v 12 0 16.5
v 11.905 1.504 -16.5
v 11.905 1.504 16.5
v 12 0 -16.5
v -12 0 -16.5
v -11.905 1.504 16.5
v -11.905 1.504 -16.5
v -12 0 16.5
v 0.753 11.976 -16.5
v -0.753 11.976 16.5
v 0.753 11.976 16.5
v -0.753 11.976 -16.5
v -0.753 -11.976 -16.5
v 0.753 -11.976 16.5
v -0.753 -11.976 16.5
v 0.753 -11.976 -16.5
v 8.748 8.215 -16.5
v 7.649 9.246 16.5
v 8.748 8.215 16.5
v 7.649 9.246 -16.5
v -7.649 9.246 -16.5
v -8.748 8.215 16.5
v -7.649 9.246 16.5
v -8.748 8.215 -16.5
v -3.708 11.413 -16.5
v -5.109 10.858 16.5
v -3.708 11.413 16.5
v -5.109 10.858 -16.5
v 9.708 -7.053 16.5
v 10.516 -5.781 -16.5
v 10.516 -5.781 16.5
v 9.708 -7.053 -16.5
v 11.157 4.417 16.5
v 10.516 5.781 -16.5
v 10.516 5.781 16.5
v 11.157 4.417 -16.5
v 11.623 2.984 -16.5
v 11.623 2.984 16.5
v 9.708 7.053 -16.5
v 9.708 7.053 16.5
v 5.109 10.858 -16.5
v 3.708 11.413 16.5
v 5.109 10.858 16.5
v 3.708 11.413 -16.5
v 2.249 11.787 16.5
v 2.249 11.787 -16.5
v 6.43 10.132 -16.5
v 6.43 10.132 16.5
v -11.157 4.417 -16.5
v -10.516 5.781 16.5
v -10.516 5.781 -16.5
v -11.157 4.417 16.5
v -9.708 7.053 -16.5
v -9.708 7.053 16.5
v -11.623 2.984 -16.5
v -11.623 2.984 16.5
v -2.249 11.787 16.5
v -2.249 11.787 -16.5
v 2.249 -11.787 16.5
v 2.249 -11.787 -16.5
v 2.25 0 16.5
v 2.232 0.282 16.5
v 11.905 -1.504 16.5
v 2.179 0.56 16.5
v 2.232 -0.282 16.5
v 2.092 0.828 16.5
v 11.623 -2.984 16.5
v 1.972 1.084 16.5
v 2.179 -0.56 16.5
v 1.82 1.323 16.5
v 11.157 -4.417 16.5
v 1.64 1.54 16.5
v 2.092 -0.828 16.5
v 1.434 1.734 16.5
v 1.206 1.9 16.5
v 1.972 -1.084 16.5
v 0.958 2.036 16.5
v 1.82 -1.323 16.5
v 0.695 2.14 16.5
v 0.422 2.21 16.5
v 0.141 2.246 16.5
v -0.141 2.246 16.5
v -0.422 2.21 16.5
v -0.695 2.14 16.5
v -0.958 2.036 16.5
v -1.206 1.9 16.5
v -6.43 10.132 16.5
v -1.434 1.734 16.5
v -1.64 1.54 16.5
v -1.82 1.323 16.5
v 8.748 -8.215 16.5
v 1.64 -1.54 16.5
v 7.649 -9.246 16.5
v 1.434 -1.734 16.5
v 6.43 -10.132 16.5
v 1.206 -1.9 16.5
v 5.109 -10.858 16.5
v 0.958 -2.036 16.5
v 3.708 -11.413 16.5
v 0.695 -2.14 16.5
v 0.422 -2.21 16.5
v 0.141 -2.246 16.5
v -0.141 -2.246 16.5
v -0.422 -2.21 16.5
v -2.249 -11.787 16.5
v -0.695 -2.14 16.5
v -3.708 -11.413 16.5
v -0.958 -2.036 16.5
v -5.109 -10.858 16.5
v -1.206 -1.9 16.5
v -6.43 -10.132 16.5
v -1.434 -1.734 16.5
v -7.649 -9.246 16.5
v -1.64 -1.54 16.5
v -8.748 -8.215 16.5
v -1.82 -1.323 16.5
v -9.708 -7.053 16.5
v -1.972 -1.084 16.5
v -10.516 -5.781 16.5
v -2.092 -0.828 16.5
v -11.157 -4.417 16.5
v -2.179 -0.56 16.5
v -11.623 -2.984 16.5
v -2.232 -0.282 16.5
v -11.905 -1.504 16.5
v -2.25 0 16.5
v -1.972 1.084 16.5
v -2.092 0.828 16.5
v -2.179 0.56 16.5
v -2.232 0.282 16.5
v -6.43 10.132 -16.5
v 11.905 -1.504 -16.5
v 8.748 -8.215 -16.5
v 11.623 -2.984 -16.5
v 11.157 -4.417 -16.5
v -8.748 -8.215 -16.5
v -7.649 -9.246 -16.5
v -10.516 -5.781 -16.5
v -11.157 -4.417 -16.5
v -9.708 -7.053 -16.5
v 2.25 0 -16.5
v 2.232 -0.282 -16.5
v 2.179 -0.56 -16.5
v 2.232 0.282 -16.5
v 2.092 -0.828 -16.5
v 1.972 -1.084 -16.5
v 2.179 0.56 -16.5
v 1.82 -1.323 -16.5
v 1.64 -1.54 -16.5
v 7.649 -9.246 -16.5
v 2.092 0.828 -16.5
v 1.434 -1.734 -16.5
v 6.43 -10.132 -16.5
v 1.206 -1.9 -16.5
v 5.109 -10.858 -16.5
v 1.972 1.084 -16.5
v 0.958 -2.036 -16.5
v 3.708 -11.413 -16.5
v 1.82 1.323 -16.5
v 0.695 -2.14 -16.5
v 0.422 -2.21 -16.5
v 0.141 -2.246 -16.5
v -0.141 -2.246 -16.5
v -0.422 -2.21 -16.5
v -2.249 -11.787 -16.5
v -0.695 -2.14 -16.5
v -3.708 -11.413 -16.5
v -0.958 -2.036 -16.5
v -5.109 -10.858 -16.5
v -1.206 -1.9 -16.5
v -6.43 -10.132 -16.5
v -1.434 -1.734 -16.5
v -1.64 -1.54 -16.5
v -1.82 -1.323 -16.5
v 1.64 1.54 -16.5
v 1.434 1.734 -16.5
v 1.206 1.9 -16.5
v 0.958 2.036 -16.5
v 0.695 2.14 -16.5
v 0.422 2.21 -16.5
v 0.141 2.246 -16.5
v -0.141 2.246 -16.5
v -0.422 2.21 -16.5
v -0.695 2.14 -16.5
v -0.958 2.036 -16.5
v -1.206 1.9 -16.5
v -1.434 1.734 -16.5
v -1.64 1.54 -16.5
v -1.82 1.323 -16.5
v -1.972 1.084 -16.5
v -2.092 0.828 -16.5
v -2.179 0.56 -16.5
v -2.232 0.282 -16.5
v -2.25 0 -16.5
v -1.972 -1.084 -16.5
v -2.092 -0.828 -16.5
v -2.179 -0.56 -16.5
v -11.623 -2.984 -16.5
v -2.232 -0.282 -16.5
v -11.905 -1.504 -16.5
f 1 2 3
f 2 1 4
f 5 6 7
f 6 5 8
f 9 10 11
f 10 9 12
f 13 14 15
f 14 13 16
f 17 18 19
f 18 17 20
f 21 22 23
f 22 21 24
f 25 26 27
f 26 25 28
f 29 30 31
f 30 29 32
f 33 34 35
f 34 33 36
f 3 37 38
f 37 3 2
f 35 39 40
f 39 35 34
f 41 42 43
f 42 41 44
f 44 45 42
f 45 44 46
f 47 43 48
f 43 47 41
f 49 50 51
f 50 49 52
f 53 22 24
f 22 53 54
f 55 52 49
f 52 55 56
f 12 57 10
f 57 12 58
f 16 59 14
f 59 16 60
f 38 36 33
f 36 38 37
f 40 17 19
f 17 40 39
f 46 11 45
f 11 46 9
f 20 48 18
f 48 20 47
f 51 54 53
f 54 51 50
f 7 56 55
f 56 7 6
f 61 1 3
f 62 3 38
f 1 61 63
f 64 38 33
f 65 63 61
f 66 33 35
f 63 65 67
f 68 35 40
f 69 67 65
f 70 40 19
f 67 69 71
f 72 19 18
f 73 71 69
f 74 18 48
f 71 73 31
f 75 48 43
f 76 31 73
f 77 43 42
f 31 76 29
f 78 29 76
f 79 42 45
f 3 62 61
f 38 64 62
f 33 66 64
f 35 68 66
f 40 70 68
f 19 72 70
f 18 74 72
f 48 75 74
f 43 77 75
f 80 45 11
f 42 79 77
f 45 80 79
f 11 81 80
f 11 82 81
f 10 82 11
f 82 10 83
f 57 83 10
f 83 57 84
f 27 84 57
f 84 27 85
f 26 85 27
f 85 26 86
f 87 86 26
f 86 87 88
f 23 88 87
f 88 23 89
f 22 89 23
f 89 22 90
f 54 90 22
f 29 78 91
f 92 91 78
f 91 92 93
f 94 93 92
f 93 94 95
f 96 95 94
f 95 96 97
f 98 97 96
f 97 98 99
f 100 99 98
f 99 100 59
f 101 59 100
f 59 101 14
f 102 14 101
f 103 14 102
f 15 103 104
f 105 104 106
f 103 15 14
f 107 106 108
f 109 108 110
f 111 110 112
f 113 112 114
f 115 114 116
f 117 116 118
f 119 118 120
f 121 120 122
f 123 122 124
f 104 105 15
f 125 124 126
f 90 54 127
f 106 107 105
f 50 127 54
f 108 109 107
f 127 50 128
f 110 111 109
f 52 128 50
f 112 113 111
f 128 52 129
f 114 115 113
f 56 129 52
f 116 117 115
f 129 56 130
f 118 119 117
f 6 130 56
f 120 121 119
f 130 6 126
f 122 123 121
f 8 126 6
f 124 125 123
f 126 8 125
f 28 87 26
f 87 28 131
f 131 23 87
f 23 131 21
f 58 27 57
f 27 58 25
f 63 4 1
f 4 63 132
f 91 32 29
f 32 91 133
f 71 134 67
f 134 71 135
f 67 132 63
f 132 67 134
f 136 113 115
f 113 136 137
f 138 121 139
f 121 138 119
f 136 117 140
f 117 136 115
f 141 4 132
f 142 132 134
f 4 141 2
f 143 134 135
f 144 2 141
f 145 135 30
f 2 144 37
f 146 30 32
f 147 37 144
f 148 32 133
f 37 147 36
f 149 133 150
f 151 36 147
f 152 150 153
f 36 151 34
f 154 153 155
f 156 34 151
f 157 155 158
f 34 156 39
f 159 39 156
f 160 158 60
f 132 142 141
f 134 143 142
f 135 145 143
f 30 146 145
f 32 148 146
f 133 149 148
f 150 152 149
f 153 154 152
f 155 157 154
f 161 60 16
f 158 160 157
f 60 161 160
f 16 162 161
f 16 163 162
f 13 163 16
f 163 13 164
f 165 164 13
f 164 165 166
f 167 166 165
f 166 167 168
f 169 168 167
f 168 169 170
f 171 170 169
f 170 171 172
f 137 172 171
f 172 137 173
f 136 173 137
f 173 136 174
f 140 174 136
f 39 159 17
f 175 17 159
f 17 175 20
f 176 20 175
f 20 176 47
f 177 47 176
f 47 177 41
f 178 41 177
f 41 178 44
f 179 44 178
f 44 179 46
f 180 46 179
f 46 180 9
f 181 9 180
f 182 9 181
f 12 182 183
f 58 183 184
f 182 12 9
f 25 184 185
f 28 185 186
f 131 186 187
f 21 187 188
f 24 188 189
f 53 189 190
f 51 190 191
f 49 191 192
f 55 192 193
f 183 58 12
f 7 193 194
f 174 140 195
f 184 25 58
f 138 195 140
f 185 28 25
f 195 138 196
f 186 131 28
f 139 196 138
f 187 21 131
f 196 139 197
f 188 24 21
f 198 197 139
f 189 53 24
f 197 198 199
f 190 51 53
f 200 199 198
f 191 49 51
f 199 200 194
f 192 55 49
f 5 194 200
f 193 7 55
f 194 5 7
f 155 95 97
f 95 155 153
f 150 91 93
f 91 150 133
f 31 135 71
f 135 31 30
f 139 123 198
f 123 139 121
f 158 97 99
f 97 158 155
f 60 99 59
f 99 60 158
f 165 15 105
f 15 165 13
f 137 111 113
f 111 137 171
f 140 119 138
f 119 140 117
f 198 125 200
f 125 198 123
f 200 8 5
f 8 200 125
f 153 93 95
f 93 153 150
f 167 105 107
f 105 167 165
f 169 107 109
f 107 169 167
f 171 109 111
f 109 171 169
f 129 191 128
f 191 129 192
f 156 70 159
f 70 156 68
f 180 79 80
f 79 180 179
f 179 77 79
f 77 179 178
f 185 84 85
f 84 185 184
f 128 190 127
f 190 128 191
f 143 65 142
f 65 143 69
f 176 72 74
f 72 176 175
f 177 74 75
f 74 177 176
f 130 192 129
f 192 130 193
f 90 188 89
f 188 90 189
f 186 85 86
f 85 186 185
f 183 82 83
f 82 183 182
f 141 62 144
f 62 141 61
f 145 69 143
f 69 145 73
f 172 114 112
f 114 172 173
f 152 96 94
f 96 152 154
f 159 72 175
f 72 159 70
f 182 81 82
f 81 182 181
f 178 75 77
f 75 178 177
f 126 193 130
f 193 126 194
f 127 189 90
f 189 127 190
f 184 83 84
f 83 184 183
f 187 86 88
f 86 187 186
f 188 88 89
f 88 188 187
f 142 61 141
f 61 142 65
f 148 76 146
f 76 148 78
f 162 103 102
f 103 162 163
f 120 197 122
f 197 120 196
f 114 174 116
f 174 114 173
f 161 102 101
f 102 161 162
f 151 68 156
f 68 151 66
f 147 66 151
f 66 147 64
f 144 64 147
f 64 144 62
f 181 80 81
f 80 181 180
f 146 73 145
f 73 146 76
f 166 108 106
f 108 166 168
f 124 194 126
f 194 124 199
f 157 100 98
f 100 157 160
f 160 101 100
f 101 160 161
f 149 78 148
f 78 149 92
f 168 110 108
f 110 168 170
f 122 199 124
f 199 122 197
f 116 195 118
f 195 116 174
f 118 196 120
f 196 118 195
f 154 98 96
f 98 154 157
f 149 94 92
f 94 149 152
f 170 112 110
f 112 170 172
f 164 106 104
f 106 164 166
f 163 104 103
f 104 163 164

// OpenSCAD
$fn = 50;


difference() {
	union() {
		translate(v = [0, 0, -16.5000000000]) {
			cylinder(h = 33, r = 12.0000000000);
		}
	}
	union() {
		translate(v = [0, 0, -100.0000000000]) {
			cylinder(h = 200, r = 2.2500000000);
		}
	}
}
